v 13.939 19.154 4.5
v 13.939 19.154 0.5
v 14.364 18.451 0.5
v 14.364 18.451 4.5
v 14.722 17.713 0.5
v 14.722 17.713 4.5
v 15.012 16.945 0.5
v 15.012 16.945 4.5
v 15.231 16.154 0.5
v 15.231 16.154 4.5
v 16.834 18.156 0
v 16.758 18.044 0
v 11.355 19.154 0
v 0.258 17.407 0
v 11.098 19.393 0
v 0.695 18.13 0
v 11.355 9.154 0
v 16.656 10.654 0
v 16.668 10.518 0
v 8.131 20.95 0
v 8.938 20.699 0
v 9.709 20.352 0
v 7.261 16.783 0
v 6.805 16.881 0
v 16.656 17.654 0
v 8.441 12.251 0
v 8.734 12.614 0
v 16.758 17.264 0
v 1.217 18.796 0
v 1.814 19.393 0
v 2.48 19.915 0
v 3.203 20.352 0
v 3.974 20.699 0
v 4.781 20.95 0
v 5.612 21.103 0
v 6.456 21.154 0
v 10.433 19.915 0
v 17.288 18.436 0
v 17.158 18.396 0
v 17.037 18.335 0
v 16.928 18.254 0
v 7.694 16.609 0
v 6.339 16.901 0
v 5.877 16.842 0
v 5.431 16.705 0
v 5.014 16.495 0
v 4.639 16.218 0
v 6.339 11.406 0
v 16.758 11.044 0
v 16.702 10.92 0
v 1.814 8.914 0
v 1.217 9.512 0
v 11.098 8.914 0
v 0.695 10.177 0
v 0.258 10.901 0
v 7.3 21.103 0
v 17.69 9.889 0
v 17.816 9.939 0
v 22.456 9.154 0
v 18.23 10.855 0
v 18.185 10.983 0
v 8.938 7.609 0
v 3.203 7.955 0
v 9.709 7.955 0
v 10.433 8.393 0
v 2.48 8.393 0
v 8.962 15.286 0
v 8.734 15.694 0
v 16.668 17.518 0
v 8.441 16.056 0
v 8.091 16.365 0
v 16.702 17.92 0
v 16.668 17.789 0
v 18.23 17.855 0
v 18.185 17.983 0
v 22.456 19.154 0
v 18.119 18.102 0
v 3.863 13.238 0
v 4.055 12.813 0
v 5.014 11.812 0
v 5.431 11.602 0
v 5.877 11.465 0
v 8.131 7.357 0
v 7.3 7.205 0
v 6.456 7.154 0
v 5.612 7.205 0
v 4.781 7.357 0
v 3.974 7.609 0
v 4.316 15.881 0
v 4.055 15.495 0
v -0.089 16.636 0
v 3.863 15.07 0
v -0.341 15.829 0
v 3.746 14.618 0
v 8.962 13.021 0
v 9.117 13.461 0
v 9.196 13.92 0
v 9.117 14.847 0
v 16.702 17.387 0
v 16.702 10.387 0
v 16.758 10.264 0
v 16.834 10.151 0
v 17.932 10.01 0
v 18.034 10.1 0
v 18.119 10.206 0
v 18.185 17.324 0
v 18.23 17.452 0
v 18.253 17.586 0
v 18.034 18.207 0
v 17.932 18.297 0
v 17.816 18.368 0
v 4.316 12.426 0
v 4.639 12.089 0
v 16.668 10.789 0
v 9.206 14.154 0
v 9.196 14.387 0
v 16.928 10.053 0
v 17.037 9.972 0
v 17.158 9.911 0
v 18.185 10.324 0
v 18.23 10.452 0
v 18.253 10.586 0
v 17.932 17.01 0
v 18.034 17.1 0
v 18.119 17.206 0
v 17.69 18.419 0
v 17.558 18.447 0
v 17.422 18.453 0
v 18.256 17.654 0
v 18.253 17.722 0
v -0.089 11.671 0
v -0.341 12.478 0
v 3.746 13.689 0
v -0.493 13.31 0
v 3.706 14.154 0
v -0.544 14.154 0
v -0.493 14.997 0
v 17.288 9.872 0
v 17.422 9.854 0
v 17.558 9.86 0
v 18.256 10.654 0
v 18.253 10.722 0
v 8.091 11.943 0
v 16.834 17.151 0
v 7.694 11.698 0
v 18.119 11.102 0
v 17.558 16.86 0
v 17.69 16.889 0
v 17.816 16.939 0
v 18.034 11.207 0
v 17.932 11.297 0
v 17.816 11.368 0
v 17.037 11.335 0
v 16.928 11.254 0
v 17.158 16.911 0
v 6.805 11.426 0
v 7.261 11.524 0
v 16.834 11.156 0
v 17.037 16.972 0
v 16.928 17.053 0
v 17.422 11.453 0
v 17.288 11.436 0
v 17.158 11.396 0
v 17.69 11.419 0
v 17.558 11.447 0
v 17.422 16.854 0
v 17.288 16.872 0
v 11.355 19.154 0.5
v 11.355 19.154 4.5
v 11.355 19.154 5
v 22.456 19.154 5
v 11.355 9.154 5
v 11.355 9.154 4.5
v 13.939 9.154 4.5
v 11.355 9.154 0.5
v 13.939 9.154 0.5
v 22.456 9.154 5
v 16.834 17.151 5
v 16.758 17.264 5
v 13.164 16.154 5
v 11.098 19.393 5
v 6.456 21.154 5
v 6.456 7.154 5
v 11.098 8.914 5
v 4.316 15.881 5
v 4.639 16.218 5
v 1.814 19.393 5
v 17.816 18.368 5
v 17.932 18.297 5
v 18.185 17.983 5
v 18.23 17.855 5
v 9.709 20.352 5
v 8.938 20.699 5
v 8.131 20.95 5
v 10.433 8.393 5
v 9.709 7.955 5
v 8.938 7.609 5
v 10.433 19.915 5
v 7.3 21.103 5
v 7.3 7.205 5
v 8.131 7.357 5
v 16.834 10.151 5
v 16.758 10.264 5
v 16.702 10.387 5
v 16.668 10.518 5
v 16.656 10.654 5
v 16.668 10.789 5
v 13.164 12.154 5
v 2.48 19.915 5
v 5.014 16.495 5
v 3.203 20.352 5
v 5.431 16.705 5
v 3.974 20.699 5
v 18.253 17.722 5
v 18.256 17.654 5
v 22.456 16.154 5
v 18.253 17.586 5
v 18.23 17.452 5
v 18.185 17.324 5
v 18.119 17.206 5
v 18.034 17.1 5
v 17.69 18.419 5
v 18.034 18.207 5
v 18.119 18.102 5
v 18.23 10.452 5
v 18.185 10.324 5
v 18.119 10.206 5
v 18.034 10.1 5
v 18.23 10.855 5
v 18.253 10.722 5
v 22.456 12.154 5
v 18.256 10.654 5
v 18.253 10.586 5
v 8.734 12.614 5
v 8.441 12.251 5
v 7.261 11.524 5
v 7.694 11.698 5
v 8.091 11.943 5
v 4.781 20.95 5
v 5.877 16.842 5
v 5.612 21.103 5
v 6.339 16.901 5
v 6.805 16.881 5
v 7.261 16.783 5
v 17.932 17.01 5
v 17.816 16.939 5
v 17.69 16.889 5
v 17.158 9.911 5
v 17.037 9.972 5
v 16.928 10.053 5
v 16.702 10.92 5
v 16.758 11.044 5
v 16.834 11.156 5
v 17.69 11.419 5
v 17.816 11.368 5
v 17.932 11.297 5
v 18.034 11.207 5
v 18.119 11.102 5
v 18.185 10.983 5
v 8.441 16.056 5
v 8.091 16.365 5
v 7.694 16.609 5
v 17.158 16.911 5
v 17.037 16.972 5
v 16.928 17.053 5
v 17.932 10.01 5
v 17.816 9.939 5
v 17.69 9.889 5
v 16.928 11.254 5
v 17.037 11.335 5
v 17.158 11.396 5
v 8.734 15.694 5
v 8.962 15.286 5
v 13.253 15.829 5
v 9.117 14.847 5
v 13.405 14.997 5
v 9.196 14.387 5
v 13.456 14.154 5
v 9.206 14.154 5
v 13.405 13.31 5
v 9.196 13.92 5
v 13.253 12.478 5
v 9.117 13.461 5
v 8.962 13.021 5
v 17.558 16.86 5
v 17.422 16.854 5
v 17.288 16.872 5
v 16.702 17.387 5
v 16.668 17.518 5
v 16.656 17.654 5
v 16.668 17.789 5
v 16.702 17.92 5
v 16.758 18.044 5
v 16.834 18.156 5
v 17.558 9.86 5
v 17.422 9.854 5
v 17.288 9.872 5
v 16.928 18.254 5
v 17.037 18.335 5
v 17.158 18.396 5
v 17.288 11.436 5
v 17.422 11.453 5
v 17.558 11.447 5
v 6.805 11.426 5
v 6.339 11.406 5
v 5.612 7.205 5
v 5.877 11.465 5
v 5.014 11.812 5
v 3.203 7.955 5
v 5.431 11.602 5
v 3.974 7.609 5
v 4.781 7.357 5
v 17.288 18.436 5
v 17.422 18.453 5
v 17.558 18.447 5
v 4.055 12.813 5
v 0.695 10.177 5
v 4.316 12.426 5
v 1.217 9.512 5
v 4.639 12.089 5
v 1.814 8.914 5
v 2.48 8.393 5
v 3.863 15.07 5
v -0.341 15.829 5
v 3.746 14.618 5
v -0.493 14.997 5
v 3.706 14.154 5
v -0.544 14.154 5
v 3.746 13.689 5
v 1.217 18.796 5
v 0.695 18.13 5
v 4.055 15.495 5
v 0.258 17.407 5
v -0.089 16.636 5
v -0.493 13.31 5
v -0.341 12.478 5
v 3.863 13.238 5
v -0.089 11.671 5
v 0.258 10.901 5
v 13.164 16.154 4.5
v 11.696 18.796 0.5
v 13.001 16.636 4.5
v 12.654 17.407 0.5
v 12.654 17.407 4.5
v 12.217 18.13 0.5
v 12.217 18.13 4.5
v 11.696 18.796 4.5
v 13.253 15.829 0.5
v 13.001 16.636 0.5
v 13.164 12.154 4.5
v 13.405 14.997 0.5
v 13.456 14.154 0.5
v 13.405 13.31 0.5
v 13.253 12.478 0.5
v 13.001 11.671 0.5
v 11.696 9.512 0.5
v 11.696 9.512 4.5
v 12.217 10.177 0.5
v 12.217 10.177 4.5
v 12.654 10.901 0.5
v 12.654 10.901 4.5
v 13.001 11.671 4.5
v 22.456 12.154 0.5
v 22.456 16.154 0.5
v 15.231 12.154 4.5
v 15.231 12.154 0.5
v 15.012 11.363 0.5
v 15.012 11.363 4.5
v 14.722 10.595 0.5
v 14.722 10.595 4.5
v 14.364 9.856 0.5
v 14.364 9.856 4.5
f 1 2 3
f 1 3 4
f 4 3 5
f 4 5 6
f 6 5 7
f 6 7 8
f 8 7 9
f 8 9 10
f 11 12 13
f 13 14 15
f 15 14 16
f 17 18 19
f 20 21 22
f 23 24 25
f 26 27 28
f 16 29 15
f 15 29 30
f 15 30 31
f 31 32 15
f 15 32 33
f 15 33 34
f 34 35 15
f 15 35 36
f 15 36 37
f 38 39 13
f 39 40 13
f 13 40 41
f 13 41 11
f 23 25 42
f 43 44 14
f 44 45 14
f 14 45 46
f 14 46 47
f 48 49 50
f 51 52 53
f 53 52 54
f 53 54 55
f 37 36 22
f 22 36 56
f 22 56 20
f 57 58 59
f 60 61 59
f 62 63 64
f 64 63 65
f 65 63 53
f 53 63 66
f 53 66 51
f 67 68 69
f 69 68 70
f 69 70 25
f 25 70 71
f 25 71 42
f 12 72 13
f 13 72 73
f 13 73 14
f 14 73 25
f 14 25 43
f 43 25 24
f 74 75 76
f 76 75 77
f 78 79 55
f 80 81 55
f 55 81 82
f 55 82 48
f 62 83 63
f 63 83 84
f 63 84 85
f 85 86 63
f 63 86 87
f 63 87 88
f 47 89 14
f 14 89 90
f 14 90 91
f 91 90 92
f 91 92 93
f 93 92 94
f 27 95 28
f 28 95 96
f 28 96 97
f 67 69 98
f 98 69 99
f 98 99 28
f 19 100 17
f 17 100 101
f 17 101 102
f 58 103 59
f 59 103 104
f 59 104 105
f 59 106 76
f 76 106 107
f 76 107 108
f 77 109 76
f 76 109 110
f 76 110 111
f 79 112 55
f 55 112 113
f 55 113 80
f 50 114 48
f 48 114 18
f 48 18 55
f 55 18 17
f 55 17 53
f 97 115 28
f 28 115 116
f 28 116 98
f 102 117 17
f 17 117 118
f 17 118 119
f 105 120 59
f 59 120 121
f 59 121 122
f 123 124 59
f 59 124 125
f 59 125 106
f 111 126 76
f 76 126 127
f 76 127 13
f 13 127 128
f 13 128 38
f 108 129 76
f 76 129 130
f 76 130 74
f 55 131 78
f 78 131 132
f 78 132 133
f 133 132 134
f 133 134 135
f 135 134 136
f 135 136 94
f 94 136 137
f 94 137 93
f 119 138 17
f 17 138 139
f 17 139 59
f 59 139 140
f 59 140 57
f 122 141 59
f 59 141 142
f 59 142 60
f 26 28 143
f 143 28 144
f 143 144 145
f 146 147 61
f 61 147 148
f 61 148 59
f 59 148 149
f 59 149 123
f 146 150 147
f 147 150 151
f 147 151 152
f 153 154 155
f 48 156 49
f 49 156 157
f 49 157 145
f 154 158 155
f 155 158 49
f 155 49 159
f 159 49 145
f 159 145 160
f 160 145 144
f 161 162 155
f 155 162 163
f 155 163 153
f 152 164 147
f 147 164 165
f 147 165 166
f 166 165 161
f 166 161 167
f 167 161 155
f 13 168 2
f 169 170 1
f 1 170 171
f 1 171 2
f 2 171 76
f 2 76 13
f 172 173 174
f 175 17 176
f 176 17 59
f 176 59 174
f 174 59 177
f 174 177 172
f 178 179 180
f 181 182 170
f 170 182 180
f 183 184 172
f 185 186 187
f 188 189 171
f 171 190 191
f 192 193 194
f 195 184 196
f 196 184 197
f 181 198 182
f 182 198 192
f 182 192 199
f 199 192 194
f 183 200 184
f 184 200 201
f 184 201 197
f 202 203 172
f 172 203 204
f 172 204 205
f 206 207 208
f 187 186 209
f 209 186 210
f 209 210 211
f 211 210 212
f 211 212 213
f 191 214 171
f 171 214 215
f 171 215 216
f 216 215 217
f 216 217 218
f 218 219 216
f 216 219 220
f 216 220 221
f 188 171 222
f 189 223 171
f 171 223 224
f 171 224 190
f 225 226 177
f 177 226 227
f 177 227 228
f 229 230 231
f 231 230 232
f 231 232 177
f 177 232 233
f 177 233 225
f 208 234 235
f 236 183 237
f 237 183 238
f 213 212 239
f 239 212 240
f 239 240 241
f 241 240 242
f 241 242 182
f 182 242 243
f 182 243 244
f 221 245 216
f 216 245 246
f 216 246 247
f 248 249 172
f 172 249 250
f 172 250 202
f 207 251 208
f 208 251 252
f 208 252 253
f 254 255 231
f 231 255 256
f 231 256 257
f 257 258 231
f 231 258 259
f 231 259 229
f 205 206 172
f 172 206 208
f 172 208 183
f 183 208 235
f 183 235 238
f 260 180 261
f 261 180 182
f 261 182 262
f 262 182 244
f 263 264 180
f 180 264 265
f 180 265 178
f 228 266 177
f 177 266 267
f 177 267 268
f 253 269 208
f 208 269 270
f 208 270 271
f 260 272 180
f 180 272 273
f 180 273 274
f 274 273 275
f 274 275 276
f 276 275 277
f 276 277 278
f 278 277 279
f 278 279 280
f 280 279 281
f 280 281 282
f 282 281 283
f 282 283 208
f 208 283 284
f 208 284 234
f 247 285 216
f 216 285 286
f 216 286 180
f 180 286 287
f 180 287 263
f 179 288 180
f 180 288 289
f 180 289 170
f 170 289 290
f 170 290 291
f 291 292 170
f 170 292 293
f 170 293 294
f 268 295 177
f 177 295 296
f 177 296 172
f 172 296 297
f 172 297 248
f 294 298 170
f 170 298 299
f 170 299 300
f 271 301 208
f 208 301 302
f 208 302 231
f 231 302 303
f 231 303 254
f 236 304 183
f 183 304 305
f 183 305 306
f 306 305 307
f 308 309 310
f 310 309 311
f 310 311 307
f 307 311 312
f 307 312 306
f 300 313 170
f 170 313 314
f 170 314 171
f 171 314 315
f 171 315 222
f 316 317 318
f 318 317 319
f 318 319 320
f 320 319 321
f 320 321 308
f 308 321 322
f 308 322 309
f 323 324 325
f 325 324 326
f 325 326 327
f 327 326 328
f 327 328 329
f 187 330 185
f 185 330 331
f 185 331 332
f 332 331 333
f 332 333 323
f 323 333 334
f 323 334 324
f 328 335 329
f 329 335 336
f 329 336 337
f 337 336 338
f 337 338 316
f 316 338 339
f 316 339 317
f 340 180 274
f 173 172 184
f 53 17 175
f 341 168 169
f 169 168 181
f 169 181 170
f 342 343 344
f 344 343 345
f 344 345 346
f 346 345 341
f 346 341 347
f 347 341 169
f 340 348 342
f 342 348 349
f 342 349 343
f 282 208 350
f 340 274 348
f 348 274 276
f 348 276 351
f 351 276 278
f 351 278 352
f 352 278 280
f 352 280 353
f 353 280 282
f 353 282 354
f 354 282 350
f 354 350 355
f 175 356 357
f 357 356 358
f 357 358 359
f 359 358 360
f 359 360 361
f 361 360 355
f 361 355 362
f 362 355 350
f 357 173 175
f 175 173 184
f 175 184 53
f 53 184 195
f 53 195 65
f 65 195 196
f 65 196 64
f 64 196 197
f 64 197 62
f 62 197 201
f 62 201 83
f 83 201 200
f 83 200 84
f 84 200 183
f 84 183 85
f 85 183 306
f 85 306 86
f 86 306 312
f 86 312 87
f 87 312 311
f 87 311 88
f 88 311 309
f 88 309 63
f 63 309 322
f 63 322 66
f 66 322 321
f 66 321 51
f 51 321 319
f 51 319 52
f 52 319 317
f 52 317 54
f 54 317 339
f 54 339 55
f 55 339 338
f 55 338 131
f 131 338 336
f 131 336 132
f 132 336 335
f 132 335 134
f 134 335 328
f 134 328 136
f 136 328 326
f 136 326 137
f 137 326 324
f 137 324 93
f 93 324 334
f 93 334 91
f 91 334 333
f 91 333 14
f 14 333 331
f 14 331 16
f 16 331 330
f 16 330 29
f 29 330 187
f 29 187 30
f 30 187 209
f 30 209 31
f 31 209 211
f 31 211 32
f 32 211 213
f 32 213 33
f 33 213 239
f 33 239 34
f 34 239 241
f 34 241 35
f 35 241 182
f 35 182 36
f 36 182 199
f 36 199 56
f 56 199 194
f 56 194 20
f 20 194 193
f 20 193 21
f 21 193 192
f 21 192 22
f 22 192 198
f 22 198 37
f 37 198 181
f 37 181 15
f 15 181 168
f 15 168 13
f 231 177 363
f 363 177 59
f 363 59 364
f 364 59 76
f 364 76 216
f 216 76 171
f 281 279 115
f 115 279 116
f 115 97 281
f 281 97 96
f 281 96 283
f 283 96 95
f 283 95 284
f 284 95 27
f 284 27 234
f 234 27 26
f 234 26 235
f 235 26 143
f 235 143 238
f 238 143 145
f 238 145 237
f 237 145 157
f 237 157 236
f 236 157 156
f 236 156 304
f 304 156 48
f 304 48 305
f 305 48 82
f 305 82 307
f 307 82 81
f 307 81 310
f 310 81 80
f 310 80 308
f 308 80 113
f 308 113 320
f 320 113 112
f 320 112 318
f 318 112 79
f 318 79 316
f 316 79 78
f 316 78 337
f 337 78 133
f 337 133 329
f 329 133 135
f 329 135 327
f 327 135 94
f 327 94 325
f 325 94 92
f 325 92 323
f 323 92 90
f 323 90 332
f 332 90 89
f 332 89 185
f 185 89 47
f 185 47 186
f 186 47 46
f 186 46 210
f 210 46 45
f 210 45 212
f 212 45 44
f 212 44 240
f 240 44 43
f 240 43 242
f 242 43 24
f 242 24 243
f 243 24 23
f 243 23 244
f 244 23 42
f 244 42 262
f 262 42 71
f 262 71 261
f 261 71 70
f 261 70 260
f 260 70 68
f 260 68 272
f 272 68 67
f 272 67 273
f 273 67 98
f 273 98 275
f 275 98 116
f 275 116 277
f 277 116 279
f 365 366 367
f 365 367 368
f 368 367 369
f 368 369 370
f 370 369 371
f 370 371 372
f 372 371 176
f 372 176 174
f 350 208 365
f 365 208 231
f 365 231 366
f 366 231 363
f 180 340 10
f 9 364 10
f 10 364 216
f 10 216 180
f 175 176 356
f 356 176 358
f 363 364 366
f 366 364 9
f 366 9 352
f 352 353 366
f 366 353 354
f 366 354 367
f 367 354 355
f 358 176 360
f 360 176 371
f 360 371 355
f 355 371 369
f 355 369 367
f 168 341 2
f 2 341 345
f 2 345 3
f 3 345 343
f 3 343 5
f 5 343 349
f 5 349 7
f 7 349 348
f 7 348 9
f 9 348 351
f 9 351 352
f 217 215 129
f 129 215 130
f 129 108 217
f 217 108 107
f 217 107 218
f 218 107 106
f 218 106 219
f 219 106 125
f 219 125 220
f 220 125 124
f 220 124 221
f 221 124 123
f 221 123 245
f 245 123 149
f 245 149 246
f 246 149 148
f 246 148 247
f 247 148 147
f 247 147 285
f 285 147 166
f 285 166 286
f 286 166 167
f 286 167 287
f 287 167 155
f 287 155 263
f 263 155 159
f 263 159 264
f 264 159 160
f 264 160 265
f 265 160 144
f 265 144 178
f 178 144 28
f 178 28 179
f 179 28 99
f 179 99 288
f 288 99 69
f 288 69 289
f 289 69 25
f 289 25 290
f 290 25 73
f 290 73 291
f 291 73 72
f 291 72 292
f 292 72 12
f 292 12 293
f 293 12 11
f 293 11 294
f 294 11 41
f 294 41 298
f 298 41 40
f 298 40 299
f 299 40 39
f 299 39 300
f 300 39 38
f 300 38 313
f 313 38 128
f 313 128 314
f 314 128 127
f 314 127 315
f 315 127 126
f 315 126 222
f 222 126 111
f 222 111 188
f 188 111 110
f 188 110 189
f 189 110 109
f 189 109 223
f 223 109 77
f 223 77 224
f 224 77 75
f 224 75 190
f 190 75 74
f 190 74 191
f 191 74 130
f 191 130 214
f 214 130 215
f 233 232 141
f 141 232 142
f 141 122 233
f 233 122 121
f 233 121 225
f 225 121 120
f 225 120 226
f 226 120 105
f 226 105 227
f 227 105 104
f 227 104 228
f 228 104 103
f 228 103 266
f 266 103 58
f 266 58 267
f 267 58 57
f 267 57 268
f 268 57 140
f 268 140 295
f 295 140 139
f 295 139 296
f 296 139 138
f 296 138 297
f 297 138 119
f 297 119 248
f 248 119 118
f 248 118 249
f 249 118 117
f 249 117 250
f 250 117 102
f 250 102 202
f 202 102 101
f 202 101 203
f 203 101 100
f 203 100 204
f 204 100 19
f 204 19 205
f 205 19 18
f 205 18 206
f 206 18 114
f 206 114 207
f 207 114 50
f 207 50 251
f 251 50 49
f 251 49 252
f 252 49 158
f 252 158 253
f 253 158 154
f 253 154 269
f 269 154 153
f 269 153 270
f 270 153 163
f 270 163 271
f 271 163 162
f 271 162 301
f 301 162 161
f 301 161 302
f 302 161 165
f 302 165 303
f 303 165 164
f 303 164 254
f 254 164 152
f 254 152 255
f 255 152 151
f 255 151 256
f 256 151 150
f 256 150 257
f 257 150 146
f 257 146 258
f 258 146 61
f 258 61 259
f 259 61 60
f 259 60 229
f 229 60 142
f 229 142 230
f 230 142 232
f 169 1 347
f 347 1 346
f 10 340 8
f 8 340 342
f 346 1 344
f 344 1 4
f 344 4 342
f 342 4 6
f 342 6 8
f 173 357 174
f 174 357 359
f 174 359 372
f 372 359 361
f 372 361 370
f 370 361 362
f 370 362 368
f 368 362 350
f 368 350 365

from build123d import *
from build123d.topology import SkipClean

# Parameters (mm, degrees)
BOSS_EXTRUDE1_DEPTH = 5
SKETCH3_R           = 2.75
JOINT_HOLE_DEPTH    = 32.253054869
CUT_EXTRUDE2_START  = 0.5
CUT_EXTRUDE2_DEPTH  = 5.5
SKETCH7_R           = 0.8
SCREW_HOLES_DEPTH   = 32.253054869
BOSS_EXTRUDE2_START = 5
SKETCH10_W          = 3.875984902
SKETCH10_H          = 3
BOSS_EXTRUDE2_DEPTH = 0.5


with BuildPart() as part:
    # Sketch1 → Boss-Extrude1 (new body)
    with BuildSketch(Plane.XY):
        with BuildLine():
            Line((22.456085085, 19.15366827), (11.355064571, 19.15366827))
            ThreePointArc((11.355064571, 19.15366827), (-0.543914915, 14.15366827), (11.355064571, 9.15366827))
            Line((11.355064571, 9.15366827), (22.456085085, 9.15366827))
            Line((22.456085085, 9.15366827), (22.456085085, 19.15366827))
        make_face()
    extrude(amount=BOSS_EXTRUDE1_DEPTH)

    # Sketch3 → Joint Hole (cut, through all)
    with BuildSketch(Plane.XY):
        with Locations((6.456085085, 14.15366827)):
            Circle(SKETCH3_R)
    extrude(amount=JOINT_HOLE_DEPTH, mode=Mode.SUBTRACT)

    # Sketch8 → Cut-Extrude2 (cut)
    with SkipClean():  # the faces are left unmerged after this step: merging them gives an invalid solid
        with BuildSketch(Plane.XY.offset(CUT_EXTRUDE2_START)):
            with BuildLine():
                Line((22.456085085, 16.15366827), (15.231049473, 16.15366827))
                ThreePointArc((15.231049473, 16.15366827), (14.722457344, 17.712753782), (13.939399859, 19.15366827))
                Line((13.939399859, 19.15366827), (11.355064571, 19.15366827))
                ThreePointArc((11.355064571, 19.15366827), (13.456085085, 14.15366827), (11.355064571, 9.15366827))
                Line((11.355064571, 9.15366827), (13.939399859, 9.15366827))
                ThreePointArc((13.939399859, 9.15366827), (14.722457344, 10.594582758), (15.231049473, 12.15366827))
                Line((15.231049473, 12.15366827), (22.456085085, 12.15366827))
                Line((22.456085085, 12.15366827), (22.456085085, 16.15366827))
            make_face()
        extrude(amount=CUT_EXTRUDE2_DEPTH, mode=Mode.SUBTRACT)

    # Sketch7 → Screw Holes (cut, through all)
    with SkipClean():  # the faces are left unmerged after this step: merging them gives an invalid solid
        with BuildSketch(Plane.XY):
            with Locations((17.456085085, 17.65366827)):
                Circle(SKETCH7_R)
            with Locations((17.456085085, 10.65366827)):
                Circle(SKETCH7_R)
        extrude(amount=SCREW_HOLES_DEPTH, mode=Mode.SUBTRACT)

    # Sketch10 → Boss-Extrude2 (add)
    with SkipClean():  # the faces are left unmerged after this step: merging them gives an invalid solid
        with BuildSketch(Plane.XY.offset(BOSS_EXTRUDE2_START)):
            with Locations((13.293057022, 17.65366827)):
                Rectangle(SKETCH10_W, SKETCH10_H)
            with Locations((13.293057022, 10.65366827)):
                Rectangle(SKETCH10_W, SKETCH10_H)
        extrude(amount=-BOSS_EXTRUDE2_DEPTH)


solid = part.part
